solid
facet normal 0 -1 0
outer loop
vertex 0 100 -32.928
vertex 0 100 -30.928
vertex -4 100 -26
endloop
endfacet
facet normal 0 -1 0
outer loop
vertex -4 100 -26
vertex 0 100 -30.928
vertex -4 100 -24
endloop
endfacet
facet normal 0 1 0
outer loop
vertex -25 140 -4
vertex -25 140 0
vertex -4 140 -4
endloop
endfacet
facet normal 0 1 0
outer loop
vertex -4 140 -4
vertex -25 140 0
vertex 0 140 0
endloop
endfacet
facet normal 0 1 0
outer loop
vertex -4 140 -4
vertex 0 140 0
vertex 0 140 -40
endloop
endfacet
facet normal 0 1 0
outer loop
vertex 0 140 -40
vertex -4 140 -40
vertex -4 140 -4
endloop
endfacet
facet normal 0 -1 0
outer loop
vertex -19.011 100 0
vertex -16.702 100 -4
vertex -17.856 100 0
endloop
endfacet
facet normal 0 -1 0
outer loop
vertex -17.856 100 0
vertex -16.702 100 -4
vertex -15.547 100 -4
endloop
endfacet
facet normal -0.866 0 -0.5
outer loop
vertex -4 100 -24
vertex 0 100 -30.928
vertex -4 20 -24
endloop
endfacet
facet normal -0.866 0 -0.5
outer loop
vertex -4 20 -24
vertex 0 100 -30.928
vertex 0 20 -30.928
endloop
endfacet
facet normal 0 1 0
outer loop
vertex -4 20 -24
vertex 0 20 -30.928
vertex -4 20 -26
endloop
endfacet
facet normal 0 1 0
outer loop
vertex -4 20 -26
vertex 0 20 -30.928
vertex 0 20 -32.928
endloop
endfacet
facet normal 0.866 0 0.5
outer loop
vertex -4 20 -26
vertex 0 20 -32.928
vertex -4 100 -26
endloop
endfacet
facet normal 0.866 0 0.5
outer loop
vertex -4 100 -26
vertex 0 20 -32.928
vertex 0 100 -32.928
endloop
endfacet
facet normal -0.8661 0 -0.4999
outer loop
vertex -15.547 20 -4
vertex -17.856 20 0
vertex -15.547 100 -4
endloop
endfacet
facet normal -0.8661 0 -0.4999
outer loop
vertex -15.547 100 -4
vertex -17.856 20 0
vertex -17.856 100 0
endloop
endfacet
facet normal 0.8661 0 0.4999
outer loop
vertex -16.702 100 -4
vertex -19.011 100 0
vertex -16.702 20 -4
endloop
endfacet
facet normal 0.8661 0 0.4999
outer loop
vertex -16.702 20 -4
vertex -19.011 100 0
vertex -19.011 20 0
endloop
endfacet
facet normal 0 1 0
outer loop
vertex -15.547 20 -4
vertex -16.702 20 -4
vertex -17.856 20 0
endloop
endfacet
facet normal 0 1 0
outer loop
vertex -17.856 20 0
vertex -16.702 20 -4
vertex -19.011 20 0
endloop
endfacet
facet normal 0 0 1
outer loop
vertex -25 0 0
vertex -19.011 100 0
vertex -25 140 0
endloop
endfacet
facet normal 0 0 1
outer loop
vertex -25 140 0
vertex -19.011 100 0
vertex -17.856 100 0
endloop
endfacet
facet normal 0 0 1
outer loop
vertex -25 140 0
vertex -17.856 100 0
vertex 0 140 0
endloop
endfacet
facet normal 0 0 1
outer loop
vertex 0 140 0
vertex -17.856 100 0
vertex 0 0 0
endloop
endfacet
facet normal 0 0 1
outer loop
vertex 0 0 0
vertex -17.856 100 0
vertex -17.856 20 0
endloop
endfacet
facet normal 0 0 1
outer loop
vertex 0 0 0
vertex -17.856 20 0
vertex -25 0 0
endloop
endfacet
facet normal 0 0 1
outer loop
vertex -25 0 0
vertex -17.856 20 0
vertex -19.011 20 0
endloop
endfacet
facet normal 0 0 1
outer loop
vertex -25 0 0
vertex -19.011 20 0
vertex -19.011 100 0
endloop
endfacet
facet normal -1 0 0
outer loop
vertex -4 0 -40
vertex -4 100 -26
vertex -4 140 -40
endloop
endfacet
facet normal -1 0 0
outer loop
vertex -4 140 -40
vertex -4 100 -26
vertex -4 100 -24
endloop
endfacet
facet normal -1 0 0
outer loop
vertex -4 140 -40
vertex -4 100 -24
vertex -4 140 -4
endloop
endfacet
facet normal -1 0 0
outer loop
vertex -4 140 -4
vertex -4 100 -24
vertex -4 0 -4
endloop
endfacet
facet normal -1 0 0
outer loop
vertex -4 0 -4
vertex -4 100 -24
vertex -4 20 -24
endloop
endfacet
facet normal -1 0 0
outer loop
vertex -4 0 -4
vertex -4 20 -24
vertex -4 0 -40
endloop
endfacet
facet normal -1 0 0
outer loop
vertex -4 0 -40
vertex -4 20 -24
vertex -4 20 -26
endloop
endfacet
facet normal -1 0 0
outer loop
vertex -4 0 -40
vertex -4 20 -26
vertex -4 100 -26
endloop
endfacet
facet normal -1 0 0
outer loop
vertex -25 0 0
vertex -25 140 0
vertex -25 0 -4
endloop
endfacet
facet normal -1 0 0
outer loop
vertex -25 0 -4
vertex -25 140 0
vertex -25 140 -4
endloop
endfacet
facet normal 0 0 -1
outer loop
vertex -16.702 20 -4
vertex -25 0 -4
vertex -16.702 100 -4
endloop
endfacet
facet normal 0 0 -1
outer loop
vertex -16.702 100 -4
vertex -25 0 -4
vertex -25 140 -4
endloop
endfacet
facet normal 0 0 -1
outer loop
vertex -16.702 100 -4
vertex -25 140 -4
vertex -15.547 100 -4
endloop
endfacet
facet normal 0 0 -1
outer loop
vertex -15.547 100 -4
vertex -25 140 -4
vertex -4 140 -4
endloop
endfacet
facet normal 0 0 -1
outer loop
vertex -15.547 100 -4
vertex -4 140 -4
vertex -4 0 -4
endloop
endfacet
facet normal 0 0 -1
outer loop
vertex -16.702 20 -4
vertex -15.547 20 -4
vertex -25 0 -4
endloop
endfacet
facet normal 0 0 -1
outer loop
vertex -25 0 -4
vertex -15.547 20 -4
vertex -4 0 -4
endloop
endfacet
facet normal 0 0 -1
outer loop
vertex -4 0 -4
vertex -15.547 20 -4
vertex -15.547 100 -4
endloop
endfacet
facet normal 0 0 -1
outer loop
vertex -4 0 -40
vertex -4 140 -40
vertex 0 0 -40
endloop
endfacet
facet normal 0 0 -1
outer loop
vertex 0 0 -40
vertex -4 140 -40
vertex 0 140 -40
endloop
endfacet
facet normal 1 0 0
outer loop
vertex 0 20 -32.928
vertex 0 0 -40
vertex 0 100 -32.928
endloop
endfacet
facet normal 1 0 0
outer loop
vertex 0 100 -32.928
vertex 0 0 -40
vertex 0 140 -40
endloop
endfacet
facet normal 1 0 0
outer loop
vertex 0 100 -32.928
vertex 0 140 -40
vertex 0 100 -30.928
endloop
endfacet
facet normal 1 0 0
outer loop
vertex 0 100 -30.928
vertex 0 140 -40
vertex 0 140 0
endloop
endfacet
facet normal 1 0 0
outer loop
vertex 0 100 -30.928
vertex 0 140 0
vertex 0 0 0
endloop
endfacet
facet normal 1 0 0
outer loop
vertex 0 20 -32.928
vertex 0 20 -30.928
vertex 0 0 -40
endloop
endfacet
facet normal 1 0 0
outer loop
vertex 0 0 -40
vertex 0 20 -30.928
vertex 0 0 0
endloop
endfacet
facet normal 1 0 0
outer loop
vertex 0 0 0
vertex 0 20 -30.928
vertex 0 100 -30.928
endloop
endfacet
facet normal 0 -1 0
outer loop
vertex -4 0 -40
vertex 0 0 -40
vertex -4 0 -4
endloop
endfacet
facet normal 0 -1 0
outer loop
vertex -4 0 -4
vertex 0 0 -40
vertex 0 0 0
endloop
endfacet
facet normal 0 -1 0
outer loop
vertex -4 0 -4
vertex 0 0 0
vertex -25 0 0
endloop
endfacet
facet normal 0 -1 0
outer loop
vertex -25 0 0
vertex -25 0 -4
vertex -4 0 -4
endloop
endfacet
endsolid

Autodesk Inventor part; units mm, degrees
ref_plane "YZ Plane" through (0, 0, 0) normal (1, 0, 0) x (0, 1, 0)
ref_plane "XZ Plane" through (0, 0, 0) normal (0, 1, 0) x (-1, 0, 0)
ref_plane "XY Plane" through (0, 0, 0) normal (0, 0, 1) x (1, 0, 0)
sketch "Sketch1" plane through (0, 0, 0) normal (0, 1, 0) x (-1, 0, 0)
  line L0 (0, 0) -> (25, 0)
  line L1 (25, 0) -> (25, -40)
  line L2 (25, -40) -> (0, -40)
  line L3 (0, -40) -> (0, 0)
  line L4 (25, -40) -> (4, -40)
  line L5 (4, -40) -> (4, -4)
  line L6 (4, -4) -> (25, -4)
  line L7 (25, -4) -> (25, -40)
  point P0 (25, -4)
  dimension "d0" = 4
  dimension "d1" = 4
  dimension "d2" = 40
  dimension "d3" = 25
extrude "Extrusion1" add sketch "Sketch1" along normal blind 100 contours L0 L1 L6 L5 L2 L3
sketch "Sketch2" plane through (0, 100, 0) normal (0, 1, 0) x (1, 0, 0)
  line L0 (0, 0) -> (0, 40) projected
  line L1 (0, 40) -> (-4, 40) projected
  line L2 (-4, 40) -> (-4, 4) projected
  line L3 (-4, 4) -> (-25, 4) projected
  line L4 (-25, 4) -> (-25, 0) projected
  line L5 (-25, 0) -> (0, 0) projected
  line L6 (-25, 0) -> (0, 0) projected
  line L7 (-17.8564, 0) -> (0, 30.9282)
  line L8 (0, 0) -> (0, 40) projected
  line L9 (0, 32.9282) -> (-19.0111, 0)
  line L10 (-4, 40) -> (-4, 4) projected
  point P0 (-16.7017, 4)
  point P1 (-19.0111, 0)
  point P2 (-17.8564, 0)
  point P3 (-15.547, 4)
  point P4 (0, 32.9282)
  point P5 (-4, 26)
  point P6 (-4, 24)
  point P7 (0, 30.9282)
  point P8 (-4, 24)
  dimension "d7" = 30
  dimension "d8" = 1
  dimension "d11" = 20
extrude "Extrusion2" cut sketch "Sketch2" against normal blind 80 contours L7 L2 L9 L0 | L5 L9 L3 L7 | L7 L3 L9 L2
sketch "Sketch3" plane through (0, 100, 0) normal (0, 1, 0) x (1, 0, 0)
  line L0 (-19.0111, 0) -> (-16.7017, 4) projected
  line L1 (-16.7017, 4) -> (-25, 4) projected
  line L2 (-25, 4) -> (-25, 0) projected
  line L3 (-25, 0) -> (-19.0111, 0) projected
  line L4 (-15.547, 4) -> (-17.8564, 0) projected
  line L5 (-17.8564, 0) -> (0, 0) projected
  line L6 (0, 0) -> (0, 30.9282) projected
  line L7 (0, 30.9282) -> (-4, 24) projected
  line L8 (-4, 24) -> (-4, 4) projected
  line L9 (-4, 4) -> (-15.547, 4) projected
  line L10 (-4, 26) -> (0, 32.9282) projected
  line L11 (0, 32.9282) -> (0, 40) projected
  line L12 (0, 40) -> (-4, 40) projected
  line L13 (-4, 40) -> (-4, 26) projected
  line L14 (-16.7017, 4) -> (-15.547, 4) projected
  line L15 (-19.0111, 0) -> (-16.7017, 4) projected
  line L16 (-17.8564, 0) -> (-19.0111, 0) projected
  line L17 (-15.547, 4) -> (-17.8564, 0) projected
  line L18 (-4, 24) -> (-4, 26) projected
  line L19 (0, 30.9282) -> (-4, 24) projected
  line L20 (0, 32.9282) -> (0, 30.9282) projected
  line L21 (-4, 26) -> (0, 32.9282) projected
  point P0 (0, 32.9282)
extrude "Extrusion3" add sketch "Sketch3" along normal blind 40
properties part number "Knife_guide_30deg_20mm"
